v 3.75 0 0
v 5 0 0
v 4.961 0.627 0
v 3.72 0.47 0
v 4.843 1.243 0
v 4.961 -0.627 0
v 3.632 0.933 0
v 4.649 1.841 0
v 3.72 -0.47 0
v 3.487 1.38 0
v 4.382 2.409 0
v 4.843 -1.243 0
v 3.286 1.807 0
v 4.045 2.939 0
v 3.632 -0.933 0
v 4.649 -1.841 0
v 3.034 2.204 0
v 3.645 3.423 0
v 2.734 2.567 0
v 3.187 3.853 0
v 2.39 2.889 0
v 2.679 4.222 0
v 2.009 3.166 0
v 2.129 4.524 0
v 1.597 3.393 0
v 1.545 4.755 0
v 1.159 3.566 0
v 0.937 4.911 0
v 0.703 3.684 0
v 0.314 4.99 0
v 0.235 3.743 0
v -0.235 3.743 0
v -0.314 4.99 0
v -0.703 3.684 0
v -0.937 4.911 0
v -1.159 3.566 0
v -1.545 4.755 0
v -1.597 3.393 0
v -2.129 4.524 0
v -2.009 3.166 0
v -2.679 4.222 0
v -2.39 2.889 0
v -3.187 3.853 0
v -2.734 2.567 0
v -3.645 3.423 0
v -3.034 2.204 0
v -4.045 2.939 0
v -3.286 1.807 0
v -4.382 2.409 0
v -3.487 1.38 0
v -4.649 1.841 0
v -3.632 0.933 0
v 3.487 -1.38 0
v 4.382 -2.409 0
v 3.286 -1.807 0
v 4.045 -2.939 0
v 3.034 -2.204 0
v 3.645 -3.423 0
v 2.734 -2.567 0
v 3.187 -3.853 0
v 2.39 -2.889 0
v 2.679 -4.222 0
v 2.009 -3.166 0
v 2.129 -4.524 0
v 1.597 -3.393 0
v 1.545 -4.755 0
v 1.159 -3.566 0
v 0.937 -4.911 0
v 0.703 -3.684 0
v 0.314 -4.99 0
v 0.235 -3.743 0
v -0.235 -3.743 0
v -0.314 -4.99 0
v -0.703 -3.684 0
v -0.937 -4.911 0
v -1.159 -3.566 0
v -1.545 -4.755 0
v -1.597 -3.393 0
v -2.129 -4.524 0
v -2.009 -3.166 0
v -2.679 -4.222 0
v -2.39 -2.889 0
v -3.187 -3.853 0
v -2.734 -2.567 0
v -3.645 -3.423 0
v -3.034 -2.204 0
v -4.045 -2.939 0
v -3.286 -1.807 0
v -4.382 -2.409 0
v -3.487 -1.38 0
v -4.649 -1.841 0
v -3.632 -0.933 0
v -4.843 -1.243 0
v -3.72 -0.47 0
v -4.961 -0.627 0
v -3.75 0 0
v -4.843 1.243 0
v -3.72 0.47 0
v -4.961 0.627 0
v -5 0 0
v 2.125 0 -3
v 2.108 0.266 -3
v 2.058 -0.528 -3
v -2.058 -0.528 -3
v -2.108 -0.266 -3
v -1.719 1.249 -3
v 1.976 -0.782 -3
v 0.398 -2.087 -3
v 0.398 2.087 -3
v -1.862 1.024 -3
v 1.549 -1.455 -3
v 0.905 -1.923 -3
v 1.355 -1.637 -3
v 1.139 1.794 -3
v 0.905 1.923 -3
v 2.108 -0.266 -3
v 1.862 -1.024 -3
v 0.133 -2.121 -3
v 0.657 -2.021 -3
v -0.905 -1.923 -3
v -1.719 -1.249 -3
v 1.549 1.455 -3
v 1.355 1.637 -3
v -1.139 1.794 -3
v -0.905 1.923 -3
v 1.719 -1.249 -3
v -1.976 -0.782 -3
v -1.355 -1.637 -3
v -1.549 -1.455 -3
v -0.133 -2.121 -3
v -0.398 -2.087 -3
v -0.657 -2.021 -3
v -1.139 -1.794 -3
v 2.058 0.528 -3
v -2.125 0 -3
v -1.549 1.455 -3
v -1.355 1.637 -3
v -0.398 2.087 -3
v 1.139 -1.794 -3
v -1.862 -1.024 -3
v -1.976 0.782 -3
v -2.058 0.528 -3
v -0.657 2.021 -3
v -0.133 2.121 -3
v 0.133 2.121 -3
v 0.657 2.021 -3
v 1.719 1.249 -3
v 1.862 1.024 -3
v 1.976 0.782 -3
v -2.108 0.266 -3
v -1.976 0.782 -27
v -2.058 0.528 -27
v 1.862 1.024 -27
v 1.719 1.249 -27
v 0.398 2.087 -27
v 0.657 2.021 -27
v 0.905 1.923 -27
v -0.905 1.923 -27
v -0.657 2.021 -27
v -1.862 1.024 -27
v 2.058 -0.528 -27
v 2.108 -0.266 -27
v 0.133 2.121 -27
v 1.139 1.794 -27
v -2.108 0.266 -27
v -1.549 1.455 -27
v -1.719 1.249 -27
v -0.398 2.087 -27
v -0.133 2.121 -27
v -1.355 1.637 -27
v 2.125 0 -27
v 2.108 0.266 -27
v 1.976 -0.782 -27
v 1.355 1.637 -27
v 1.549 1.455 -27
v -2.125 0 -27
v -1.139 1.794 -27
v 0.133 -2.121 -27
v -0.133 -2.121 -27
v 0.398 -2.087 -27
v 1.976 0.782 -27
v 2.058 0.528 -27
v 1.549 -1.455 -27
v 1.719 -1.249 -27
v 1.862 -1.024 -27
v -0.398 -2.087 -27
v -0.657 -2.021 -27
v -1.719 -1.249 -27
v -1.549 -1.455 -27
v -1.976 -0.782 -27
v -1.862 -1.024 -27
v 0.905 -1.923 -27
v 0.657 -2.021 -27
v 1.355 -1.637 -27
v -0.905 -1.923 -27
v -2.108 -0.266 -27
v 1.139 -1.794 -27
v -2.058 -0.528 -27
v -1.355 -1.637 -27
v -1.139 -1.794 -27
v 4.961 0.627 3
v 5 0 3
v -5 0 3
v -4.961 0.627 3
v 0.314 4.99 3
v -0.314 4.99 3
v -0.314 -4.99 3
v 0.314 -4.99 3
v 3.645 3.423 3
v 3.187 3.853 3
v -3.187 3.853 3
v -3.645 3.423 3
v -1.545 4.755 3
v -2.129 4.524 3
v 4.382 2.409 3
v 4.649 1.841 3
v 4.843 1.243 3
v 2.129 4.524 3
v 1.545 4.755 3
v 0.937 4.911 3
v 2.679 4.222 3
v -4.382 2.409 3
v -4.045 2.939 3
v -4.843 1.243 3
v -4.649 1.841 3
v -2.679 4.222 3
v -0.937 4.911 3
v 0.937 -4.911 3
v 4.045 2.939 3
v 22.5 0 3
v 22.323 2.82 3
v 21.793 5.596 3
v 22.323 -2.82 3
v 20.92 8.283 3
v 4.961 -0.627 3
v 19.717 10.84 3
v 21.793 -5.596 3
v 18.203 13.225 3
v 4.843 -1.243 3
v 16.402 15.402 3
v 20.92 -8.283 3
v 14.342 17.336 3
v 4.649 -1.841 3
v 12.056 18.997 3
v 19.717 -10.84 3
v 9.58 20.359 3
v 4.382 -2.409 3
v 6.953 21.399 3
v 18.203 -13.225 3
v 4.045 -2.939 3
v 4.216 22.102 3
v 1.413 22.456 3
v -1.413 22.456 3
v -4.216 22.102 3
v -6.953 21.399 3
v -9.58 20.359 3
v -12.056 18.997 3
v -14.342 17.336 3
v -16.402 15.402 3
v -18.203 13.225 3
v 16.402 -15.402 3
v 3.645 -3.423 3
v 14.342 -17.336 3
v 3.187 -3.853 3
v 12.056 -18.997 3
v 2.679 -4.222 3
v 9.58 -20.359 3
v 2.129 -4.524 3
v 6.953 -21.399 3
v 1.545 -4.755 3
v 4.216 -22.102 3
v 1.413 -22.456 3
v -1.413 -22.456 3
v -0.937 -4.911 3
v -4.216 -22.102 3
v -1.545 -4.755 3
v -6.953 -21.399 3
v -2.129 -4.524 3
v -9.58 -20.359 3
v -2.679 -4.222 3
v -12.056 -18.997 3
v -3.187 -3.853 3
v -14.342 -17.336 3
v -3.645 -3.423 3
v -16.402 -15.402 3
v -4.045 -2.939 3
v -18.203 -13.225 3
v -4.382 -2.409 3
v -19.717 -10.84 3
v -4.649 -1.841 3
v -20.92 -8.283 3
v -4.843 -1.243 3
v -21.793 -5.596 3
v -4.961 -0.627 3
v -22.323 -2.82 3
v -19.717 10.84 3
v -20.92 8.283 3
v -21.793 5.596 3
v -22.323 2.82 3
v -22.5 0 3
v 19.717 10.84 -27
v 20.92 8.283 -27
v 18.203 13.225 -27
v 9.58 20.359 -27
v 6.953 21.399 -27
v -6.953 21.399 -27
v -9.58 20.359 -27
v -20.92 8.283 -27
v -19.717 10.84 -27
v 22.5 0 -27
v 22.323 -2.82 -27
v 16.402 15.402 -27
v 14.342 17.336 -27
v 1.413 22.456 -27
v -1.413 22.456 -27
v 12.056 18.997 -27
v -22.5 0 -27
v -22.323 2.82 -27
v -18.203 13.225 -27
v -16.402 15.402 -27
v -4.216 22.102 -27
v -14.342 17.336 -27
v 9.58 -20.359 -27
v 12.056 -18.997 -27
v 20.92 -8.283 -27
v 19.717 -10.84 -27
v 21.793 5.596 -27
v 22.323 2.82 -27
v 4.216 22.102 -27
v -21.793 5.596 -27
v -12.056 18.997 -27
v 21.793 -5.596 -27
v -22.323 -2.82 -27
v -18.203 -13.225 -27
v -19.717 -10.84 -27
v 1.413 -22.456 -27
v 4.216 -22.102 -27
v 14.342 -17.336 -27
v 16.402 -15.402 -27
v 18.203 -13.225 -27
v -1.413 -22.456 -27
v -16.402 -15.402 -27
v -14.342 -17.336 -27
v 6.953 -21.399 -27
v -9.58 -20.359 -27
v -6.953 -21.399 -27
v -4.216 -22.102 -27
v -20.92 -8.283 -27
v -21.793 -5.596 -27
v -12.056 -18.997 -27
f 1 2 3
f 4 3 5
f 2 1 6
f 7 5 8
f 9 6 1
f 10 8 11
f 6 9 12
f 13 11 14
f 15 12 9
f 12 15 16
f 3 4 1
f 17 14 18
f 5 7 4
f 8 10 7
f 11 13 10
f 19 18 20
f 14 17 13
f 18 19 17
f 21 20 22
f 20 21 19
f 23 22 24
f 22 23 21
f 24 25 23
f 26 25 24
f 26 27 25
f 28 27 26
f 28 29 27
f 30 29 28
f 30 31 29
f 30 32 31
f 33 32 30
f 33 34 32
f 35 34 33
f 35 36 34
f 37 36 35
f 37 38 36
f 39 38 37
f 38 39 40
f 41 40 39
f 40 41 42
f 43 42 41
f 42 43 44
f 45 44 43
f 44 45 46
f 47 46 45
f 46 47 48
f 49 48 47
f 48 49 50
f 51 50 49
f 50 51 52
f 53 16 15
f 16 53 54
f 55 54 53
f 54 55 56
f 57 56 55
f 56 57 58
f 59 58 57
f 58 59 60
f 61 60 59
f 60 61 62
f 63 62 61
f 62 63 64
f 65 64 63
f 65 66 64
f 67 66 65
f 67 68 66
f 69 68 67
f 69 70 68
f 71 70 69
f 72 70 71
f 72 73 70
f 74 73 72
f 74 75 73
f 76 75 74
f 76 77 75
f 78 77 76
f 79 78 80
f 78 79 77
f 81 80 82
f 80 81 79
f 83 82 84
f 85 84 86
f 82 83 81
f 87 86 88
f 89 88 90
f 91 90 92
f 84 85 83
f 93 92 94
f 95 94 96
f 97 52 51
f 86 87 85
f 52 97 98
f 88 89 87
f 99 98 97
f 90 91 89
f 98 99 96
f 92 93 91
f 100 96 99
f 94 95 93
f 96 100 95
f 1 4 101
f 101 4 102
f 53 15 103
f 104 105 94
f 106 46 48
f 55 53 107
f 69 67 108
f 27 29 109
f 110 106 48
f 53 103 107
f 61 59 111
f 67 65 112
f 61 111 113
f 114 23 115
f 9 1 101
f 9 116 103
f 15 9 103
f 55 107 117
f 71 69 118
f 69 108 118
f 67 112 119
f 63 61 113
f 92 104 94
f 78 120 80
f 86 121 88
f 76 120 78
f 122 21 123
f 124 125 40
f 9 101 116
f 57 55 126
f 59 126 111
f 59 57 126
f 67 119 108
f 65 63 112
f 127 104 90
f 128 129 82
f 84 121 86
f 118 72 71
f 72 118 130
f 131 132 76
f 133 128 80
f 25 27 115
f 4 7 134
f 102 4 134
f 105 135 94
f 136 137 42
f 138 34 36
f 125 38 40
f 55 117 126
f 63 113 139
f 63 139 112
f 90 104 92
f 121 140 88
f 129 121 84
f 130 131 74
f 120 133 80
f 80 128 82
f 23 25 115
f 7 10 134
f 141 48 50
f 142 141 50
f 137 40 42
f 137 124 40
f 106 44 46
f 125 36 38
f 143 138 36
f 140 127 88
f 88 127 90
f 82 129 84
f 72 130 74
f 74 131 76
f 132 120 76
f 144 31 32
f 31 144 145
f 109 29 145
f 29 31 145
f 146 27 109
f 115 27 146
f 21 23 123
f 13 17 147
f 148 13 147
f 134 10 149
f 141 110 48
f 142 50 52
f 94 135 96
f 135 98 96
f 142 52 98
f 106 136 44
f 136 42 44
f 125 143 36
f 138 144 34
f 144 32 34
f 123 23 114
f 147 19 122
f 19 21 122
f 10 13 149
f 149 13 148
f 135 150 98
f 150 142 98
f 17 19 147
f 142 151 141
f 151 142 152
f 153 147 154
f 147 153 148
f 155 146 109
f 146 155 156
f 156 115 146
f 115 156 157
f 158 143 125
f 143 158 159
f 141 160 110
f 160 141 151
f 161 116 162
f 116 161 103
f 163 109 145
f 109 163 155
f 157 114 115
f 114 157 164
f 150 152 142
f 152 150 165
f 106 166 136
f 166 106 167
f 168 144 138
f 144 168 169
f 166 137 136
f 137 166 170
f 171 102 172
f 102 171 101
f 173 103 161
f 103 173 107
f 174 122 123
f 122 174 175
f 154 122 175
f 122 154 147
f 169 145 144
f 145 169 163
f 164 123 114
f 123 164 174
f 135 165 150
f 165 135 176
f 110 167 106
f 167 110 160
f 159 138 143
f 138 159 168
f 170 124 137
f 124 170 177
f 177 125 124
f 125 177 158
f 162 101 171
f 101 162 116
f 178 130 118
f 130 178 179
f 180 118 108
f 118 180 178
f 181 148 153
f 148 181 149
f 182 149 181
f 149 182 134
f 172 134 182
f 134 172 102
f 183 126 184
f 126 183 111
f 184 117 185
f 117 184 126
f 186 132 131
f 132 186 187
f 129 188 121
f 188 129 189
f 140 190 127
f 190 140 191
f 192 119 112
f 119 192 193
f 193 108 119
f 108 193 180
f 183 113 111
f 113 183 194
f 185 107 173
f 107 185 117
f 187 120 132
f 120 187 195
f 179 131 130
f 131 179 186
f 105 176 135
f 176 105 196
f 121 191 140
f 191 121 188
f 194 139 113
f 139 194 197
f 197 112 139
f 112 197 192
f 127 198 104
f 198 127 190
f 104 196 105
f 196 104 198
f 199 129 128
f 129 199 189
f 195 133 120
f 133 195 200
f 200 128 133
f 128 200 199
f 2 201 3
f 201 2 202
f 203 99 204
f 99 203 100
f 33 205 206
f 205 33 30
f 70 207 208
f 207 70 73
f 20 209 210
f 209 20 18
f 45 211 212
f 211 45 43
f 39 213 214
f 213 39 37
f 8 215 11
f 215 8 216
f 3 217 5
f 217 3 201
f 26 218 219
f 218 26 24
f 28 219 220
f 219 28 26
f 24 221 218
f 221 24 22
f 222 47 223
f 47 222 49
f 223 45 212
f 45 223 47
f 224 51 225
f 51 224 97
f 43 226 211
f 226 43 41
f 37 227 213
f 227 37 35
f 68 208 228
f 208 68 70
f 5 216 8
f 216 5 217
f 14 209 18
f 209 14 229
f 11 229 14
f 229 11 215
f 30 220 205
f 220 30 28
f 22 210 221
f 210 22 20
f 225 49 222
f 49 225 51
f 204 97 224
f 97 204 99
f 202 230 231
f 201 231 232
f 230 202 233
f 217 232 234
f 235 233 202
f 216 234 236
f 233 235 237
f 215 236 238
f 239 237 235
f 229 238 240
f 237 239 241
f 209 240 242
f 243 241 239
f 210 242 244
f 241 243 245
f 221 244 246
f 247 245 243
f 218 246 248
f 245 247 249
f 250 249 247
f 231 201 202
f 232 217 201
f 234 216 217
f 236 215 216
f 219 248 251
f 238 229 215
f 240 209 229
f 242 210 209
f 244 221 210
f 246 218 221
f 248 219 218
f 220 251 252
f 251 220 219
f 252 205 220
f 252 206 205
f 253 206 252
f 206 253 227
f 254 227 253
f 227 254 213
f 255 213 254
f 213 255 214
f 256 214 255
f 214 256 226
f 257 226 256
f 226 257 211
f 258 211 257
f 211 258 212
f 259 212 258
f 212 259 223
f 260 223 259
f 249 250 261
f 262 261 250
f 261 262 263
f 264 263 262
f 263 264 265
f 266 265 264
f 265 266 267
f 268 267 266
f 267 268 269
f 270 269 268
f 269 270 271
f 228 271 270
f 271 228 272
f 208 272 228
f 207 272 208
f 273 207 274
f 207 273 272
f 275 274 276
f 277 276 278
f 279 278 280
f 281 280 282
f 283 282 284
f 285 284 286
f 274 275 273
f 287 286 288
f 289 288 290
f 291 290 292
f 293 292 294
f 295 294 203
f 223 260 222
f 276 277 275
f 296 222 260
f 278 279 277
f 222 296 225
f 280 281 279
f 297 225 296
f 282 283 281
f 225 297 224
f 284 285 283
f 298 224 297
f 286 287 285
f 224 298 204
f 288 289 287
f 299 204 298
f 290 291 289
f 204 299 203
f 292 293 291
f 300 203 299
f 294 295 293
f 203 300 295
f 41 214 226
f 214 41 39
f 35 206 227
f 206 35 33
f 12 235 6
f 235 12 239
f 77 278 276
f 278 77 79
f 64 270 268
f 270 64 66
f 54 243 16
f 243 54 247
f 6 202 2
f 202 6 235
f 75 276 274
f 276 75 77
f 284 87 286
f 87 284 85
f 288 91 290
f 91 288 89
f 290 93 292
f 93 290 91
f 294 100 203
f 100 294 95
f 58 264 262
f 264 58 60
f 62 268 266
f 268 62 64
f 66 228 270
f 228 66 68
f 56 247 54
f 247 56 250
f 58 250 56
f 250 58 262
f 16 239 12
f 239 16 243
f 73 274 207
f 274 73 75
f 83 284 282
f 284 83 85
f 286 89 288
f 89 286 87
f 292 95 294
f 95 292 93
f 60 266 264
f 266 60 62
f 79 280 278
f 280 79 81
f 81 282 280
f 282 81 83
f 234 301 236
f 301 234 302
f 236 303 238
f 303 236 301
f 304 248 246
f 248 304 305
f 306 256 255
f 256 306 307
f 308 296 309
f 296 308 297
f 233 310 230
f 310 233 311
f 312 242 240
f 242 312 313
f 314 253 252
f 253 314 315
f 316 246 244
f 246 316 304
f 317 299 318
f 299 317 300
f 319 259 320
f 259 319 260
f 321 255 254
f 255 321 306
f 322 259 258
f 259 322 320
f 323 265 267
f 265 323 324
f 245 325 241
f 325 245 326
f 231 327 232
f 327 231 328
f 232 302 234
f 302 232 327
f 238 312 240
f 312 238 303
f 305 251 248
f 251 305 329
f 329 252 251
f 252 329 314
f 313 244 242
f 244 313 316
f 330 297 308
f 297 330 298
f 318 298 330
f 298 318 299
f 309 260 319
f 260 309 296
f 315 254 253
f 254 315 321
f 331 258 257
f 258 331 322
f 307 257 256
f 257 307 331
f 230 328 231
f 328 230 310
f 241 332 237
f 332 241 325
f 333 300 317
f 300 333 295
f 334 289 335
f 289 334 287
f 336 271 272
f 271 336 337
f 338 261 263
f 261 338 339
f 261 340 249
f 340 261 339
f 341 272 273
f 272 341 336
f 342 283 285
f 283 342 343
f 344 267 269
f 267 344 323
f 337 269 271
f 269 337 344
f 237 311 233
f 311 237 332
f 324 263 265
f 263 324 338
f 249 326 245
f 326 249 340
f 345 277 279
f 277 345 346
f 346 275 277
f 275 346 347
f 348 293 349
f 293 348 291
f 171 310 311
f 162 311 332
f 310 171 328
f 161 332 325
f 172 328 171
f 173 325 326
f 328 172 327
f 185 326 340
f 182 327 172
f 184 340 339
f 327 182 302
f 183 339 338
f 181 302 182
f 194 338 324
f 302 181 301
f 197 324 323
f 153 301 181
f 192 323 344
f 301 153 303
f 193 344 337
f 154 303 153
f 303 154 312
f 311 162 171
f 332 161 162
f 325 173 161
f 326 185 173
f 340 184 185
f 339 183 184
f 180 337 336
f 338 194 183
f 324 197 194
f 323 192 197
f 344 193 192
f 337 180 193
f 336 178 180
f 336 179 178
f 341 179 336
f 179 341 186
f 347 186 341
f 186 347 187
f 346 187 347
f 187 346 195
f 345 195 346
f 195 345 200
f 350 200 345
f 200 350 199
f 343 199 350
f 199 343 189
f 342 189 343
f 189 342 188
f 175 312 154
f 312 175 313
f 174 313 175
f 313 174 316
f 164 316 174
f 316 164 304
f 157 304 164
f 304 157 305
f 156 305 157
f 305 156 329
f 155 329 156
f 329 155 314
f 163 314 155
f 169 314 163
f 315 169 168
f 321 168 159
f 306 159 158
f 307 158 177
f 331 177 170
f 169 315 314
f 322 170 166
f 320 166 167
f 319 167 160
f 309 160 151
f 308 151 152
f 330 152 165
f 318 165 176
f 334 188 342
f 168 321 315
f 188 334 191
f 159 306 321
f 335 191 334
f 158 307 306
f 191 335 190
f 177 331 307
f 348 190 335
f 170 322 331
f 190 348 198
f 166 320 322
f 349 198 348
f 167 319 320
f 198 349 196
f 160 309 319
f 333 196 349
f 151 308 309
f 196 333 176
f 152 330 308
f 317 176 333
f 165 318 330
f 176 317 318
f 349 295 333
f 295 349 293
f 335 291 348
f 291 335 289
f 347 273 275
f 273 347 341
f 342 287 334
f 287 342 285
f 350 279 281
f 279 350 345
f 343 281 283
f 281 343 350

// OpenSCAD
$fn = 50;

difference() {
	union() {
		translate(v = [0, 0, -27.0]) {
			cylinder(h = 30, r = 22.5);
		}
	}
	union() {
		translate(v = [0, 0, 0]) {
			rotate(a = [0, 0, 0]) {
				difference() {
					union() {
						translate(v = [0, 0, -30.0]) {
							cylinder(h = 30, r = 2.0);
						}
						translate(v = [0, 0, -3]) {
							cylinder(h = 3, r1 = 2.125, r2 = 3.75);
						}
						translate(v = [0, 0, -30.0]) {
							cylinder(h = 30, r = 2.125);
						}
						translate(v = [0, 0, -30.0]) {
							cylinder(h = 30, r = 2.0);
						}
					}
					union();
				}
			}
		}
		#cylinder(h = 3, r = 5.0);
	}
}
